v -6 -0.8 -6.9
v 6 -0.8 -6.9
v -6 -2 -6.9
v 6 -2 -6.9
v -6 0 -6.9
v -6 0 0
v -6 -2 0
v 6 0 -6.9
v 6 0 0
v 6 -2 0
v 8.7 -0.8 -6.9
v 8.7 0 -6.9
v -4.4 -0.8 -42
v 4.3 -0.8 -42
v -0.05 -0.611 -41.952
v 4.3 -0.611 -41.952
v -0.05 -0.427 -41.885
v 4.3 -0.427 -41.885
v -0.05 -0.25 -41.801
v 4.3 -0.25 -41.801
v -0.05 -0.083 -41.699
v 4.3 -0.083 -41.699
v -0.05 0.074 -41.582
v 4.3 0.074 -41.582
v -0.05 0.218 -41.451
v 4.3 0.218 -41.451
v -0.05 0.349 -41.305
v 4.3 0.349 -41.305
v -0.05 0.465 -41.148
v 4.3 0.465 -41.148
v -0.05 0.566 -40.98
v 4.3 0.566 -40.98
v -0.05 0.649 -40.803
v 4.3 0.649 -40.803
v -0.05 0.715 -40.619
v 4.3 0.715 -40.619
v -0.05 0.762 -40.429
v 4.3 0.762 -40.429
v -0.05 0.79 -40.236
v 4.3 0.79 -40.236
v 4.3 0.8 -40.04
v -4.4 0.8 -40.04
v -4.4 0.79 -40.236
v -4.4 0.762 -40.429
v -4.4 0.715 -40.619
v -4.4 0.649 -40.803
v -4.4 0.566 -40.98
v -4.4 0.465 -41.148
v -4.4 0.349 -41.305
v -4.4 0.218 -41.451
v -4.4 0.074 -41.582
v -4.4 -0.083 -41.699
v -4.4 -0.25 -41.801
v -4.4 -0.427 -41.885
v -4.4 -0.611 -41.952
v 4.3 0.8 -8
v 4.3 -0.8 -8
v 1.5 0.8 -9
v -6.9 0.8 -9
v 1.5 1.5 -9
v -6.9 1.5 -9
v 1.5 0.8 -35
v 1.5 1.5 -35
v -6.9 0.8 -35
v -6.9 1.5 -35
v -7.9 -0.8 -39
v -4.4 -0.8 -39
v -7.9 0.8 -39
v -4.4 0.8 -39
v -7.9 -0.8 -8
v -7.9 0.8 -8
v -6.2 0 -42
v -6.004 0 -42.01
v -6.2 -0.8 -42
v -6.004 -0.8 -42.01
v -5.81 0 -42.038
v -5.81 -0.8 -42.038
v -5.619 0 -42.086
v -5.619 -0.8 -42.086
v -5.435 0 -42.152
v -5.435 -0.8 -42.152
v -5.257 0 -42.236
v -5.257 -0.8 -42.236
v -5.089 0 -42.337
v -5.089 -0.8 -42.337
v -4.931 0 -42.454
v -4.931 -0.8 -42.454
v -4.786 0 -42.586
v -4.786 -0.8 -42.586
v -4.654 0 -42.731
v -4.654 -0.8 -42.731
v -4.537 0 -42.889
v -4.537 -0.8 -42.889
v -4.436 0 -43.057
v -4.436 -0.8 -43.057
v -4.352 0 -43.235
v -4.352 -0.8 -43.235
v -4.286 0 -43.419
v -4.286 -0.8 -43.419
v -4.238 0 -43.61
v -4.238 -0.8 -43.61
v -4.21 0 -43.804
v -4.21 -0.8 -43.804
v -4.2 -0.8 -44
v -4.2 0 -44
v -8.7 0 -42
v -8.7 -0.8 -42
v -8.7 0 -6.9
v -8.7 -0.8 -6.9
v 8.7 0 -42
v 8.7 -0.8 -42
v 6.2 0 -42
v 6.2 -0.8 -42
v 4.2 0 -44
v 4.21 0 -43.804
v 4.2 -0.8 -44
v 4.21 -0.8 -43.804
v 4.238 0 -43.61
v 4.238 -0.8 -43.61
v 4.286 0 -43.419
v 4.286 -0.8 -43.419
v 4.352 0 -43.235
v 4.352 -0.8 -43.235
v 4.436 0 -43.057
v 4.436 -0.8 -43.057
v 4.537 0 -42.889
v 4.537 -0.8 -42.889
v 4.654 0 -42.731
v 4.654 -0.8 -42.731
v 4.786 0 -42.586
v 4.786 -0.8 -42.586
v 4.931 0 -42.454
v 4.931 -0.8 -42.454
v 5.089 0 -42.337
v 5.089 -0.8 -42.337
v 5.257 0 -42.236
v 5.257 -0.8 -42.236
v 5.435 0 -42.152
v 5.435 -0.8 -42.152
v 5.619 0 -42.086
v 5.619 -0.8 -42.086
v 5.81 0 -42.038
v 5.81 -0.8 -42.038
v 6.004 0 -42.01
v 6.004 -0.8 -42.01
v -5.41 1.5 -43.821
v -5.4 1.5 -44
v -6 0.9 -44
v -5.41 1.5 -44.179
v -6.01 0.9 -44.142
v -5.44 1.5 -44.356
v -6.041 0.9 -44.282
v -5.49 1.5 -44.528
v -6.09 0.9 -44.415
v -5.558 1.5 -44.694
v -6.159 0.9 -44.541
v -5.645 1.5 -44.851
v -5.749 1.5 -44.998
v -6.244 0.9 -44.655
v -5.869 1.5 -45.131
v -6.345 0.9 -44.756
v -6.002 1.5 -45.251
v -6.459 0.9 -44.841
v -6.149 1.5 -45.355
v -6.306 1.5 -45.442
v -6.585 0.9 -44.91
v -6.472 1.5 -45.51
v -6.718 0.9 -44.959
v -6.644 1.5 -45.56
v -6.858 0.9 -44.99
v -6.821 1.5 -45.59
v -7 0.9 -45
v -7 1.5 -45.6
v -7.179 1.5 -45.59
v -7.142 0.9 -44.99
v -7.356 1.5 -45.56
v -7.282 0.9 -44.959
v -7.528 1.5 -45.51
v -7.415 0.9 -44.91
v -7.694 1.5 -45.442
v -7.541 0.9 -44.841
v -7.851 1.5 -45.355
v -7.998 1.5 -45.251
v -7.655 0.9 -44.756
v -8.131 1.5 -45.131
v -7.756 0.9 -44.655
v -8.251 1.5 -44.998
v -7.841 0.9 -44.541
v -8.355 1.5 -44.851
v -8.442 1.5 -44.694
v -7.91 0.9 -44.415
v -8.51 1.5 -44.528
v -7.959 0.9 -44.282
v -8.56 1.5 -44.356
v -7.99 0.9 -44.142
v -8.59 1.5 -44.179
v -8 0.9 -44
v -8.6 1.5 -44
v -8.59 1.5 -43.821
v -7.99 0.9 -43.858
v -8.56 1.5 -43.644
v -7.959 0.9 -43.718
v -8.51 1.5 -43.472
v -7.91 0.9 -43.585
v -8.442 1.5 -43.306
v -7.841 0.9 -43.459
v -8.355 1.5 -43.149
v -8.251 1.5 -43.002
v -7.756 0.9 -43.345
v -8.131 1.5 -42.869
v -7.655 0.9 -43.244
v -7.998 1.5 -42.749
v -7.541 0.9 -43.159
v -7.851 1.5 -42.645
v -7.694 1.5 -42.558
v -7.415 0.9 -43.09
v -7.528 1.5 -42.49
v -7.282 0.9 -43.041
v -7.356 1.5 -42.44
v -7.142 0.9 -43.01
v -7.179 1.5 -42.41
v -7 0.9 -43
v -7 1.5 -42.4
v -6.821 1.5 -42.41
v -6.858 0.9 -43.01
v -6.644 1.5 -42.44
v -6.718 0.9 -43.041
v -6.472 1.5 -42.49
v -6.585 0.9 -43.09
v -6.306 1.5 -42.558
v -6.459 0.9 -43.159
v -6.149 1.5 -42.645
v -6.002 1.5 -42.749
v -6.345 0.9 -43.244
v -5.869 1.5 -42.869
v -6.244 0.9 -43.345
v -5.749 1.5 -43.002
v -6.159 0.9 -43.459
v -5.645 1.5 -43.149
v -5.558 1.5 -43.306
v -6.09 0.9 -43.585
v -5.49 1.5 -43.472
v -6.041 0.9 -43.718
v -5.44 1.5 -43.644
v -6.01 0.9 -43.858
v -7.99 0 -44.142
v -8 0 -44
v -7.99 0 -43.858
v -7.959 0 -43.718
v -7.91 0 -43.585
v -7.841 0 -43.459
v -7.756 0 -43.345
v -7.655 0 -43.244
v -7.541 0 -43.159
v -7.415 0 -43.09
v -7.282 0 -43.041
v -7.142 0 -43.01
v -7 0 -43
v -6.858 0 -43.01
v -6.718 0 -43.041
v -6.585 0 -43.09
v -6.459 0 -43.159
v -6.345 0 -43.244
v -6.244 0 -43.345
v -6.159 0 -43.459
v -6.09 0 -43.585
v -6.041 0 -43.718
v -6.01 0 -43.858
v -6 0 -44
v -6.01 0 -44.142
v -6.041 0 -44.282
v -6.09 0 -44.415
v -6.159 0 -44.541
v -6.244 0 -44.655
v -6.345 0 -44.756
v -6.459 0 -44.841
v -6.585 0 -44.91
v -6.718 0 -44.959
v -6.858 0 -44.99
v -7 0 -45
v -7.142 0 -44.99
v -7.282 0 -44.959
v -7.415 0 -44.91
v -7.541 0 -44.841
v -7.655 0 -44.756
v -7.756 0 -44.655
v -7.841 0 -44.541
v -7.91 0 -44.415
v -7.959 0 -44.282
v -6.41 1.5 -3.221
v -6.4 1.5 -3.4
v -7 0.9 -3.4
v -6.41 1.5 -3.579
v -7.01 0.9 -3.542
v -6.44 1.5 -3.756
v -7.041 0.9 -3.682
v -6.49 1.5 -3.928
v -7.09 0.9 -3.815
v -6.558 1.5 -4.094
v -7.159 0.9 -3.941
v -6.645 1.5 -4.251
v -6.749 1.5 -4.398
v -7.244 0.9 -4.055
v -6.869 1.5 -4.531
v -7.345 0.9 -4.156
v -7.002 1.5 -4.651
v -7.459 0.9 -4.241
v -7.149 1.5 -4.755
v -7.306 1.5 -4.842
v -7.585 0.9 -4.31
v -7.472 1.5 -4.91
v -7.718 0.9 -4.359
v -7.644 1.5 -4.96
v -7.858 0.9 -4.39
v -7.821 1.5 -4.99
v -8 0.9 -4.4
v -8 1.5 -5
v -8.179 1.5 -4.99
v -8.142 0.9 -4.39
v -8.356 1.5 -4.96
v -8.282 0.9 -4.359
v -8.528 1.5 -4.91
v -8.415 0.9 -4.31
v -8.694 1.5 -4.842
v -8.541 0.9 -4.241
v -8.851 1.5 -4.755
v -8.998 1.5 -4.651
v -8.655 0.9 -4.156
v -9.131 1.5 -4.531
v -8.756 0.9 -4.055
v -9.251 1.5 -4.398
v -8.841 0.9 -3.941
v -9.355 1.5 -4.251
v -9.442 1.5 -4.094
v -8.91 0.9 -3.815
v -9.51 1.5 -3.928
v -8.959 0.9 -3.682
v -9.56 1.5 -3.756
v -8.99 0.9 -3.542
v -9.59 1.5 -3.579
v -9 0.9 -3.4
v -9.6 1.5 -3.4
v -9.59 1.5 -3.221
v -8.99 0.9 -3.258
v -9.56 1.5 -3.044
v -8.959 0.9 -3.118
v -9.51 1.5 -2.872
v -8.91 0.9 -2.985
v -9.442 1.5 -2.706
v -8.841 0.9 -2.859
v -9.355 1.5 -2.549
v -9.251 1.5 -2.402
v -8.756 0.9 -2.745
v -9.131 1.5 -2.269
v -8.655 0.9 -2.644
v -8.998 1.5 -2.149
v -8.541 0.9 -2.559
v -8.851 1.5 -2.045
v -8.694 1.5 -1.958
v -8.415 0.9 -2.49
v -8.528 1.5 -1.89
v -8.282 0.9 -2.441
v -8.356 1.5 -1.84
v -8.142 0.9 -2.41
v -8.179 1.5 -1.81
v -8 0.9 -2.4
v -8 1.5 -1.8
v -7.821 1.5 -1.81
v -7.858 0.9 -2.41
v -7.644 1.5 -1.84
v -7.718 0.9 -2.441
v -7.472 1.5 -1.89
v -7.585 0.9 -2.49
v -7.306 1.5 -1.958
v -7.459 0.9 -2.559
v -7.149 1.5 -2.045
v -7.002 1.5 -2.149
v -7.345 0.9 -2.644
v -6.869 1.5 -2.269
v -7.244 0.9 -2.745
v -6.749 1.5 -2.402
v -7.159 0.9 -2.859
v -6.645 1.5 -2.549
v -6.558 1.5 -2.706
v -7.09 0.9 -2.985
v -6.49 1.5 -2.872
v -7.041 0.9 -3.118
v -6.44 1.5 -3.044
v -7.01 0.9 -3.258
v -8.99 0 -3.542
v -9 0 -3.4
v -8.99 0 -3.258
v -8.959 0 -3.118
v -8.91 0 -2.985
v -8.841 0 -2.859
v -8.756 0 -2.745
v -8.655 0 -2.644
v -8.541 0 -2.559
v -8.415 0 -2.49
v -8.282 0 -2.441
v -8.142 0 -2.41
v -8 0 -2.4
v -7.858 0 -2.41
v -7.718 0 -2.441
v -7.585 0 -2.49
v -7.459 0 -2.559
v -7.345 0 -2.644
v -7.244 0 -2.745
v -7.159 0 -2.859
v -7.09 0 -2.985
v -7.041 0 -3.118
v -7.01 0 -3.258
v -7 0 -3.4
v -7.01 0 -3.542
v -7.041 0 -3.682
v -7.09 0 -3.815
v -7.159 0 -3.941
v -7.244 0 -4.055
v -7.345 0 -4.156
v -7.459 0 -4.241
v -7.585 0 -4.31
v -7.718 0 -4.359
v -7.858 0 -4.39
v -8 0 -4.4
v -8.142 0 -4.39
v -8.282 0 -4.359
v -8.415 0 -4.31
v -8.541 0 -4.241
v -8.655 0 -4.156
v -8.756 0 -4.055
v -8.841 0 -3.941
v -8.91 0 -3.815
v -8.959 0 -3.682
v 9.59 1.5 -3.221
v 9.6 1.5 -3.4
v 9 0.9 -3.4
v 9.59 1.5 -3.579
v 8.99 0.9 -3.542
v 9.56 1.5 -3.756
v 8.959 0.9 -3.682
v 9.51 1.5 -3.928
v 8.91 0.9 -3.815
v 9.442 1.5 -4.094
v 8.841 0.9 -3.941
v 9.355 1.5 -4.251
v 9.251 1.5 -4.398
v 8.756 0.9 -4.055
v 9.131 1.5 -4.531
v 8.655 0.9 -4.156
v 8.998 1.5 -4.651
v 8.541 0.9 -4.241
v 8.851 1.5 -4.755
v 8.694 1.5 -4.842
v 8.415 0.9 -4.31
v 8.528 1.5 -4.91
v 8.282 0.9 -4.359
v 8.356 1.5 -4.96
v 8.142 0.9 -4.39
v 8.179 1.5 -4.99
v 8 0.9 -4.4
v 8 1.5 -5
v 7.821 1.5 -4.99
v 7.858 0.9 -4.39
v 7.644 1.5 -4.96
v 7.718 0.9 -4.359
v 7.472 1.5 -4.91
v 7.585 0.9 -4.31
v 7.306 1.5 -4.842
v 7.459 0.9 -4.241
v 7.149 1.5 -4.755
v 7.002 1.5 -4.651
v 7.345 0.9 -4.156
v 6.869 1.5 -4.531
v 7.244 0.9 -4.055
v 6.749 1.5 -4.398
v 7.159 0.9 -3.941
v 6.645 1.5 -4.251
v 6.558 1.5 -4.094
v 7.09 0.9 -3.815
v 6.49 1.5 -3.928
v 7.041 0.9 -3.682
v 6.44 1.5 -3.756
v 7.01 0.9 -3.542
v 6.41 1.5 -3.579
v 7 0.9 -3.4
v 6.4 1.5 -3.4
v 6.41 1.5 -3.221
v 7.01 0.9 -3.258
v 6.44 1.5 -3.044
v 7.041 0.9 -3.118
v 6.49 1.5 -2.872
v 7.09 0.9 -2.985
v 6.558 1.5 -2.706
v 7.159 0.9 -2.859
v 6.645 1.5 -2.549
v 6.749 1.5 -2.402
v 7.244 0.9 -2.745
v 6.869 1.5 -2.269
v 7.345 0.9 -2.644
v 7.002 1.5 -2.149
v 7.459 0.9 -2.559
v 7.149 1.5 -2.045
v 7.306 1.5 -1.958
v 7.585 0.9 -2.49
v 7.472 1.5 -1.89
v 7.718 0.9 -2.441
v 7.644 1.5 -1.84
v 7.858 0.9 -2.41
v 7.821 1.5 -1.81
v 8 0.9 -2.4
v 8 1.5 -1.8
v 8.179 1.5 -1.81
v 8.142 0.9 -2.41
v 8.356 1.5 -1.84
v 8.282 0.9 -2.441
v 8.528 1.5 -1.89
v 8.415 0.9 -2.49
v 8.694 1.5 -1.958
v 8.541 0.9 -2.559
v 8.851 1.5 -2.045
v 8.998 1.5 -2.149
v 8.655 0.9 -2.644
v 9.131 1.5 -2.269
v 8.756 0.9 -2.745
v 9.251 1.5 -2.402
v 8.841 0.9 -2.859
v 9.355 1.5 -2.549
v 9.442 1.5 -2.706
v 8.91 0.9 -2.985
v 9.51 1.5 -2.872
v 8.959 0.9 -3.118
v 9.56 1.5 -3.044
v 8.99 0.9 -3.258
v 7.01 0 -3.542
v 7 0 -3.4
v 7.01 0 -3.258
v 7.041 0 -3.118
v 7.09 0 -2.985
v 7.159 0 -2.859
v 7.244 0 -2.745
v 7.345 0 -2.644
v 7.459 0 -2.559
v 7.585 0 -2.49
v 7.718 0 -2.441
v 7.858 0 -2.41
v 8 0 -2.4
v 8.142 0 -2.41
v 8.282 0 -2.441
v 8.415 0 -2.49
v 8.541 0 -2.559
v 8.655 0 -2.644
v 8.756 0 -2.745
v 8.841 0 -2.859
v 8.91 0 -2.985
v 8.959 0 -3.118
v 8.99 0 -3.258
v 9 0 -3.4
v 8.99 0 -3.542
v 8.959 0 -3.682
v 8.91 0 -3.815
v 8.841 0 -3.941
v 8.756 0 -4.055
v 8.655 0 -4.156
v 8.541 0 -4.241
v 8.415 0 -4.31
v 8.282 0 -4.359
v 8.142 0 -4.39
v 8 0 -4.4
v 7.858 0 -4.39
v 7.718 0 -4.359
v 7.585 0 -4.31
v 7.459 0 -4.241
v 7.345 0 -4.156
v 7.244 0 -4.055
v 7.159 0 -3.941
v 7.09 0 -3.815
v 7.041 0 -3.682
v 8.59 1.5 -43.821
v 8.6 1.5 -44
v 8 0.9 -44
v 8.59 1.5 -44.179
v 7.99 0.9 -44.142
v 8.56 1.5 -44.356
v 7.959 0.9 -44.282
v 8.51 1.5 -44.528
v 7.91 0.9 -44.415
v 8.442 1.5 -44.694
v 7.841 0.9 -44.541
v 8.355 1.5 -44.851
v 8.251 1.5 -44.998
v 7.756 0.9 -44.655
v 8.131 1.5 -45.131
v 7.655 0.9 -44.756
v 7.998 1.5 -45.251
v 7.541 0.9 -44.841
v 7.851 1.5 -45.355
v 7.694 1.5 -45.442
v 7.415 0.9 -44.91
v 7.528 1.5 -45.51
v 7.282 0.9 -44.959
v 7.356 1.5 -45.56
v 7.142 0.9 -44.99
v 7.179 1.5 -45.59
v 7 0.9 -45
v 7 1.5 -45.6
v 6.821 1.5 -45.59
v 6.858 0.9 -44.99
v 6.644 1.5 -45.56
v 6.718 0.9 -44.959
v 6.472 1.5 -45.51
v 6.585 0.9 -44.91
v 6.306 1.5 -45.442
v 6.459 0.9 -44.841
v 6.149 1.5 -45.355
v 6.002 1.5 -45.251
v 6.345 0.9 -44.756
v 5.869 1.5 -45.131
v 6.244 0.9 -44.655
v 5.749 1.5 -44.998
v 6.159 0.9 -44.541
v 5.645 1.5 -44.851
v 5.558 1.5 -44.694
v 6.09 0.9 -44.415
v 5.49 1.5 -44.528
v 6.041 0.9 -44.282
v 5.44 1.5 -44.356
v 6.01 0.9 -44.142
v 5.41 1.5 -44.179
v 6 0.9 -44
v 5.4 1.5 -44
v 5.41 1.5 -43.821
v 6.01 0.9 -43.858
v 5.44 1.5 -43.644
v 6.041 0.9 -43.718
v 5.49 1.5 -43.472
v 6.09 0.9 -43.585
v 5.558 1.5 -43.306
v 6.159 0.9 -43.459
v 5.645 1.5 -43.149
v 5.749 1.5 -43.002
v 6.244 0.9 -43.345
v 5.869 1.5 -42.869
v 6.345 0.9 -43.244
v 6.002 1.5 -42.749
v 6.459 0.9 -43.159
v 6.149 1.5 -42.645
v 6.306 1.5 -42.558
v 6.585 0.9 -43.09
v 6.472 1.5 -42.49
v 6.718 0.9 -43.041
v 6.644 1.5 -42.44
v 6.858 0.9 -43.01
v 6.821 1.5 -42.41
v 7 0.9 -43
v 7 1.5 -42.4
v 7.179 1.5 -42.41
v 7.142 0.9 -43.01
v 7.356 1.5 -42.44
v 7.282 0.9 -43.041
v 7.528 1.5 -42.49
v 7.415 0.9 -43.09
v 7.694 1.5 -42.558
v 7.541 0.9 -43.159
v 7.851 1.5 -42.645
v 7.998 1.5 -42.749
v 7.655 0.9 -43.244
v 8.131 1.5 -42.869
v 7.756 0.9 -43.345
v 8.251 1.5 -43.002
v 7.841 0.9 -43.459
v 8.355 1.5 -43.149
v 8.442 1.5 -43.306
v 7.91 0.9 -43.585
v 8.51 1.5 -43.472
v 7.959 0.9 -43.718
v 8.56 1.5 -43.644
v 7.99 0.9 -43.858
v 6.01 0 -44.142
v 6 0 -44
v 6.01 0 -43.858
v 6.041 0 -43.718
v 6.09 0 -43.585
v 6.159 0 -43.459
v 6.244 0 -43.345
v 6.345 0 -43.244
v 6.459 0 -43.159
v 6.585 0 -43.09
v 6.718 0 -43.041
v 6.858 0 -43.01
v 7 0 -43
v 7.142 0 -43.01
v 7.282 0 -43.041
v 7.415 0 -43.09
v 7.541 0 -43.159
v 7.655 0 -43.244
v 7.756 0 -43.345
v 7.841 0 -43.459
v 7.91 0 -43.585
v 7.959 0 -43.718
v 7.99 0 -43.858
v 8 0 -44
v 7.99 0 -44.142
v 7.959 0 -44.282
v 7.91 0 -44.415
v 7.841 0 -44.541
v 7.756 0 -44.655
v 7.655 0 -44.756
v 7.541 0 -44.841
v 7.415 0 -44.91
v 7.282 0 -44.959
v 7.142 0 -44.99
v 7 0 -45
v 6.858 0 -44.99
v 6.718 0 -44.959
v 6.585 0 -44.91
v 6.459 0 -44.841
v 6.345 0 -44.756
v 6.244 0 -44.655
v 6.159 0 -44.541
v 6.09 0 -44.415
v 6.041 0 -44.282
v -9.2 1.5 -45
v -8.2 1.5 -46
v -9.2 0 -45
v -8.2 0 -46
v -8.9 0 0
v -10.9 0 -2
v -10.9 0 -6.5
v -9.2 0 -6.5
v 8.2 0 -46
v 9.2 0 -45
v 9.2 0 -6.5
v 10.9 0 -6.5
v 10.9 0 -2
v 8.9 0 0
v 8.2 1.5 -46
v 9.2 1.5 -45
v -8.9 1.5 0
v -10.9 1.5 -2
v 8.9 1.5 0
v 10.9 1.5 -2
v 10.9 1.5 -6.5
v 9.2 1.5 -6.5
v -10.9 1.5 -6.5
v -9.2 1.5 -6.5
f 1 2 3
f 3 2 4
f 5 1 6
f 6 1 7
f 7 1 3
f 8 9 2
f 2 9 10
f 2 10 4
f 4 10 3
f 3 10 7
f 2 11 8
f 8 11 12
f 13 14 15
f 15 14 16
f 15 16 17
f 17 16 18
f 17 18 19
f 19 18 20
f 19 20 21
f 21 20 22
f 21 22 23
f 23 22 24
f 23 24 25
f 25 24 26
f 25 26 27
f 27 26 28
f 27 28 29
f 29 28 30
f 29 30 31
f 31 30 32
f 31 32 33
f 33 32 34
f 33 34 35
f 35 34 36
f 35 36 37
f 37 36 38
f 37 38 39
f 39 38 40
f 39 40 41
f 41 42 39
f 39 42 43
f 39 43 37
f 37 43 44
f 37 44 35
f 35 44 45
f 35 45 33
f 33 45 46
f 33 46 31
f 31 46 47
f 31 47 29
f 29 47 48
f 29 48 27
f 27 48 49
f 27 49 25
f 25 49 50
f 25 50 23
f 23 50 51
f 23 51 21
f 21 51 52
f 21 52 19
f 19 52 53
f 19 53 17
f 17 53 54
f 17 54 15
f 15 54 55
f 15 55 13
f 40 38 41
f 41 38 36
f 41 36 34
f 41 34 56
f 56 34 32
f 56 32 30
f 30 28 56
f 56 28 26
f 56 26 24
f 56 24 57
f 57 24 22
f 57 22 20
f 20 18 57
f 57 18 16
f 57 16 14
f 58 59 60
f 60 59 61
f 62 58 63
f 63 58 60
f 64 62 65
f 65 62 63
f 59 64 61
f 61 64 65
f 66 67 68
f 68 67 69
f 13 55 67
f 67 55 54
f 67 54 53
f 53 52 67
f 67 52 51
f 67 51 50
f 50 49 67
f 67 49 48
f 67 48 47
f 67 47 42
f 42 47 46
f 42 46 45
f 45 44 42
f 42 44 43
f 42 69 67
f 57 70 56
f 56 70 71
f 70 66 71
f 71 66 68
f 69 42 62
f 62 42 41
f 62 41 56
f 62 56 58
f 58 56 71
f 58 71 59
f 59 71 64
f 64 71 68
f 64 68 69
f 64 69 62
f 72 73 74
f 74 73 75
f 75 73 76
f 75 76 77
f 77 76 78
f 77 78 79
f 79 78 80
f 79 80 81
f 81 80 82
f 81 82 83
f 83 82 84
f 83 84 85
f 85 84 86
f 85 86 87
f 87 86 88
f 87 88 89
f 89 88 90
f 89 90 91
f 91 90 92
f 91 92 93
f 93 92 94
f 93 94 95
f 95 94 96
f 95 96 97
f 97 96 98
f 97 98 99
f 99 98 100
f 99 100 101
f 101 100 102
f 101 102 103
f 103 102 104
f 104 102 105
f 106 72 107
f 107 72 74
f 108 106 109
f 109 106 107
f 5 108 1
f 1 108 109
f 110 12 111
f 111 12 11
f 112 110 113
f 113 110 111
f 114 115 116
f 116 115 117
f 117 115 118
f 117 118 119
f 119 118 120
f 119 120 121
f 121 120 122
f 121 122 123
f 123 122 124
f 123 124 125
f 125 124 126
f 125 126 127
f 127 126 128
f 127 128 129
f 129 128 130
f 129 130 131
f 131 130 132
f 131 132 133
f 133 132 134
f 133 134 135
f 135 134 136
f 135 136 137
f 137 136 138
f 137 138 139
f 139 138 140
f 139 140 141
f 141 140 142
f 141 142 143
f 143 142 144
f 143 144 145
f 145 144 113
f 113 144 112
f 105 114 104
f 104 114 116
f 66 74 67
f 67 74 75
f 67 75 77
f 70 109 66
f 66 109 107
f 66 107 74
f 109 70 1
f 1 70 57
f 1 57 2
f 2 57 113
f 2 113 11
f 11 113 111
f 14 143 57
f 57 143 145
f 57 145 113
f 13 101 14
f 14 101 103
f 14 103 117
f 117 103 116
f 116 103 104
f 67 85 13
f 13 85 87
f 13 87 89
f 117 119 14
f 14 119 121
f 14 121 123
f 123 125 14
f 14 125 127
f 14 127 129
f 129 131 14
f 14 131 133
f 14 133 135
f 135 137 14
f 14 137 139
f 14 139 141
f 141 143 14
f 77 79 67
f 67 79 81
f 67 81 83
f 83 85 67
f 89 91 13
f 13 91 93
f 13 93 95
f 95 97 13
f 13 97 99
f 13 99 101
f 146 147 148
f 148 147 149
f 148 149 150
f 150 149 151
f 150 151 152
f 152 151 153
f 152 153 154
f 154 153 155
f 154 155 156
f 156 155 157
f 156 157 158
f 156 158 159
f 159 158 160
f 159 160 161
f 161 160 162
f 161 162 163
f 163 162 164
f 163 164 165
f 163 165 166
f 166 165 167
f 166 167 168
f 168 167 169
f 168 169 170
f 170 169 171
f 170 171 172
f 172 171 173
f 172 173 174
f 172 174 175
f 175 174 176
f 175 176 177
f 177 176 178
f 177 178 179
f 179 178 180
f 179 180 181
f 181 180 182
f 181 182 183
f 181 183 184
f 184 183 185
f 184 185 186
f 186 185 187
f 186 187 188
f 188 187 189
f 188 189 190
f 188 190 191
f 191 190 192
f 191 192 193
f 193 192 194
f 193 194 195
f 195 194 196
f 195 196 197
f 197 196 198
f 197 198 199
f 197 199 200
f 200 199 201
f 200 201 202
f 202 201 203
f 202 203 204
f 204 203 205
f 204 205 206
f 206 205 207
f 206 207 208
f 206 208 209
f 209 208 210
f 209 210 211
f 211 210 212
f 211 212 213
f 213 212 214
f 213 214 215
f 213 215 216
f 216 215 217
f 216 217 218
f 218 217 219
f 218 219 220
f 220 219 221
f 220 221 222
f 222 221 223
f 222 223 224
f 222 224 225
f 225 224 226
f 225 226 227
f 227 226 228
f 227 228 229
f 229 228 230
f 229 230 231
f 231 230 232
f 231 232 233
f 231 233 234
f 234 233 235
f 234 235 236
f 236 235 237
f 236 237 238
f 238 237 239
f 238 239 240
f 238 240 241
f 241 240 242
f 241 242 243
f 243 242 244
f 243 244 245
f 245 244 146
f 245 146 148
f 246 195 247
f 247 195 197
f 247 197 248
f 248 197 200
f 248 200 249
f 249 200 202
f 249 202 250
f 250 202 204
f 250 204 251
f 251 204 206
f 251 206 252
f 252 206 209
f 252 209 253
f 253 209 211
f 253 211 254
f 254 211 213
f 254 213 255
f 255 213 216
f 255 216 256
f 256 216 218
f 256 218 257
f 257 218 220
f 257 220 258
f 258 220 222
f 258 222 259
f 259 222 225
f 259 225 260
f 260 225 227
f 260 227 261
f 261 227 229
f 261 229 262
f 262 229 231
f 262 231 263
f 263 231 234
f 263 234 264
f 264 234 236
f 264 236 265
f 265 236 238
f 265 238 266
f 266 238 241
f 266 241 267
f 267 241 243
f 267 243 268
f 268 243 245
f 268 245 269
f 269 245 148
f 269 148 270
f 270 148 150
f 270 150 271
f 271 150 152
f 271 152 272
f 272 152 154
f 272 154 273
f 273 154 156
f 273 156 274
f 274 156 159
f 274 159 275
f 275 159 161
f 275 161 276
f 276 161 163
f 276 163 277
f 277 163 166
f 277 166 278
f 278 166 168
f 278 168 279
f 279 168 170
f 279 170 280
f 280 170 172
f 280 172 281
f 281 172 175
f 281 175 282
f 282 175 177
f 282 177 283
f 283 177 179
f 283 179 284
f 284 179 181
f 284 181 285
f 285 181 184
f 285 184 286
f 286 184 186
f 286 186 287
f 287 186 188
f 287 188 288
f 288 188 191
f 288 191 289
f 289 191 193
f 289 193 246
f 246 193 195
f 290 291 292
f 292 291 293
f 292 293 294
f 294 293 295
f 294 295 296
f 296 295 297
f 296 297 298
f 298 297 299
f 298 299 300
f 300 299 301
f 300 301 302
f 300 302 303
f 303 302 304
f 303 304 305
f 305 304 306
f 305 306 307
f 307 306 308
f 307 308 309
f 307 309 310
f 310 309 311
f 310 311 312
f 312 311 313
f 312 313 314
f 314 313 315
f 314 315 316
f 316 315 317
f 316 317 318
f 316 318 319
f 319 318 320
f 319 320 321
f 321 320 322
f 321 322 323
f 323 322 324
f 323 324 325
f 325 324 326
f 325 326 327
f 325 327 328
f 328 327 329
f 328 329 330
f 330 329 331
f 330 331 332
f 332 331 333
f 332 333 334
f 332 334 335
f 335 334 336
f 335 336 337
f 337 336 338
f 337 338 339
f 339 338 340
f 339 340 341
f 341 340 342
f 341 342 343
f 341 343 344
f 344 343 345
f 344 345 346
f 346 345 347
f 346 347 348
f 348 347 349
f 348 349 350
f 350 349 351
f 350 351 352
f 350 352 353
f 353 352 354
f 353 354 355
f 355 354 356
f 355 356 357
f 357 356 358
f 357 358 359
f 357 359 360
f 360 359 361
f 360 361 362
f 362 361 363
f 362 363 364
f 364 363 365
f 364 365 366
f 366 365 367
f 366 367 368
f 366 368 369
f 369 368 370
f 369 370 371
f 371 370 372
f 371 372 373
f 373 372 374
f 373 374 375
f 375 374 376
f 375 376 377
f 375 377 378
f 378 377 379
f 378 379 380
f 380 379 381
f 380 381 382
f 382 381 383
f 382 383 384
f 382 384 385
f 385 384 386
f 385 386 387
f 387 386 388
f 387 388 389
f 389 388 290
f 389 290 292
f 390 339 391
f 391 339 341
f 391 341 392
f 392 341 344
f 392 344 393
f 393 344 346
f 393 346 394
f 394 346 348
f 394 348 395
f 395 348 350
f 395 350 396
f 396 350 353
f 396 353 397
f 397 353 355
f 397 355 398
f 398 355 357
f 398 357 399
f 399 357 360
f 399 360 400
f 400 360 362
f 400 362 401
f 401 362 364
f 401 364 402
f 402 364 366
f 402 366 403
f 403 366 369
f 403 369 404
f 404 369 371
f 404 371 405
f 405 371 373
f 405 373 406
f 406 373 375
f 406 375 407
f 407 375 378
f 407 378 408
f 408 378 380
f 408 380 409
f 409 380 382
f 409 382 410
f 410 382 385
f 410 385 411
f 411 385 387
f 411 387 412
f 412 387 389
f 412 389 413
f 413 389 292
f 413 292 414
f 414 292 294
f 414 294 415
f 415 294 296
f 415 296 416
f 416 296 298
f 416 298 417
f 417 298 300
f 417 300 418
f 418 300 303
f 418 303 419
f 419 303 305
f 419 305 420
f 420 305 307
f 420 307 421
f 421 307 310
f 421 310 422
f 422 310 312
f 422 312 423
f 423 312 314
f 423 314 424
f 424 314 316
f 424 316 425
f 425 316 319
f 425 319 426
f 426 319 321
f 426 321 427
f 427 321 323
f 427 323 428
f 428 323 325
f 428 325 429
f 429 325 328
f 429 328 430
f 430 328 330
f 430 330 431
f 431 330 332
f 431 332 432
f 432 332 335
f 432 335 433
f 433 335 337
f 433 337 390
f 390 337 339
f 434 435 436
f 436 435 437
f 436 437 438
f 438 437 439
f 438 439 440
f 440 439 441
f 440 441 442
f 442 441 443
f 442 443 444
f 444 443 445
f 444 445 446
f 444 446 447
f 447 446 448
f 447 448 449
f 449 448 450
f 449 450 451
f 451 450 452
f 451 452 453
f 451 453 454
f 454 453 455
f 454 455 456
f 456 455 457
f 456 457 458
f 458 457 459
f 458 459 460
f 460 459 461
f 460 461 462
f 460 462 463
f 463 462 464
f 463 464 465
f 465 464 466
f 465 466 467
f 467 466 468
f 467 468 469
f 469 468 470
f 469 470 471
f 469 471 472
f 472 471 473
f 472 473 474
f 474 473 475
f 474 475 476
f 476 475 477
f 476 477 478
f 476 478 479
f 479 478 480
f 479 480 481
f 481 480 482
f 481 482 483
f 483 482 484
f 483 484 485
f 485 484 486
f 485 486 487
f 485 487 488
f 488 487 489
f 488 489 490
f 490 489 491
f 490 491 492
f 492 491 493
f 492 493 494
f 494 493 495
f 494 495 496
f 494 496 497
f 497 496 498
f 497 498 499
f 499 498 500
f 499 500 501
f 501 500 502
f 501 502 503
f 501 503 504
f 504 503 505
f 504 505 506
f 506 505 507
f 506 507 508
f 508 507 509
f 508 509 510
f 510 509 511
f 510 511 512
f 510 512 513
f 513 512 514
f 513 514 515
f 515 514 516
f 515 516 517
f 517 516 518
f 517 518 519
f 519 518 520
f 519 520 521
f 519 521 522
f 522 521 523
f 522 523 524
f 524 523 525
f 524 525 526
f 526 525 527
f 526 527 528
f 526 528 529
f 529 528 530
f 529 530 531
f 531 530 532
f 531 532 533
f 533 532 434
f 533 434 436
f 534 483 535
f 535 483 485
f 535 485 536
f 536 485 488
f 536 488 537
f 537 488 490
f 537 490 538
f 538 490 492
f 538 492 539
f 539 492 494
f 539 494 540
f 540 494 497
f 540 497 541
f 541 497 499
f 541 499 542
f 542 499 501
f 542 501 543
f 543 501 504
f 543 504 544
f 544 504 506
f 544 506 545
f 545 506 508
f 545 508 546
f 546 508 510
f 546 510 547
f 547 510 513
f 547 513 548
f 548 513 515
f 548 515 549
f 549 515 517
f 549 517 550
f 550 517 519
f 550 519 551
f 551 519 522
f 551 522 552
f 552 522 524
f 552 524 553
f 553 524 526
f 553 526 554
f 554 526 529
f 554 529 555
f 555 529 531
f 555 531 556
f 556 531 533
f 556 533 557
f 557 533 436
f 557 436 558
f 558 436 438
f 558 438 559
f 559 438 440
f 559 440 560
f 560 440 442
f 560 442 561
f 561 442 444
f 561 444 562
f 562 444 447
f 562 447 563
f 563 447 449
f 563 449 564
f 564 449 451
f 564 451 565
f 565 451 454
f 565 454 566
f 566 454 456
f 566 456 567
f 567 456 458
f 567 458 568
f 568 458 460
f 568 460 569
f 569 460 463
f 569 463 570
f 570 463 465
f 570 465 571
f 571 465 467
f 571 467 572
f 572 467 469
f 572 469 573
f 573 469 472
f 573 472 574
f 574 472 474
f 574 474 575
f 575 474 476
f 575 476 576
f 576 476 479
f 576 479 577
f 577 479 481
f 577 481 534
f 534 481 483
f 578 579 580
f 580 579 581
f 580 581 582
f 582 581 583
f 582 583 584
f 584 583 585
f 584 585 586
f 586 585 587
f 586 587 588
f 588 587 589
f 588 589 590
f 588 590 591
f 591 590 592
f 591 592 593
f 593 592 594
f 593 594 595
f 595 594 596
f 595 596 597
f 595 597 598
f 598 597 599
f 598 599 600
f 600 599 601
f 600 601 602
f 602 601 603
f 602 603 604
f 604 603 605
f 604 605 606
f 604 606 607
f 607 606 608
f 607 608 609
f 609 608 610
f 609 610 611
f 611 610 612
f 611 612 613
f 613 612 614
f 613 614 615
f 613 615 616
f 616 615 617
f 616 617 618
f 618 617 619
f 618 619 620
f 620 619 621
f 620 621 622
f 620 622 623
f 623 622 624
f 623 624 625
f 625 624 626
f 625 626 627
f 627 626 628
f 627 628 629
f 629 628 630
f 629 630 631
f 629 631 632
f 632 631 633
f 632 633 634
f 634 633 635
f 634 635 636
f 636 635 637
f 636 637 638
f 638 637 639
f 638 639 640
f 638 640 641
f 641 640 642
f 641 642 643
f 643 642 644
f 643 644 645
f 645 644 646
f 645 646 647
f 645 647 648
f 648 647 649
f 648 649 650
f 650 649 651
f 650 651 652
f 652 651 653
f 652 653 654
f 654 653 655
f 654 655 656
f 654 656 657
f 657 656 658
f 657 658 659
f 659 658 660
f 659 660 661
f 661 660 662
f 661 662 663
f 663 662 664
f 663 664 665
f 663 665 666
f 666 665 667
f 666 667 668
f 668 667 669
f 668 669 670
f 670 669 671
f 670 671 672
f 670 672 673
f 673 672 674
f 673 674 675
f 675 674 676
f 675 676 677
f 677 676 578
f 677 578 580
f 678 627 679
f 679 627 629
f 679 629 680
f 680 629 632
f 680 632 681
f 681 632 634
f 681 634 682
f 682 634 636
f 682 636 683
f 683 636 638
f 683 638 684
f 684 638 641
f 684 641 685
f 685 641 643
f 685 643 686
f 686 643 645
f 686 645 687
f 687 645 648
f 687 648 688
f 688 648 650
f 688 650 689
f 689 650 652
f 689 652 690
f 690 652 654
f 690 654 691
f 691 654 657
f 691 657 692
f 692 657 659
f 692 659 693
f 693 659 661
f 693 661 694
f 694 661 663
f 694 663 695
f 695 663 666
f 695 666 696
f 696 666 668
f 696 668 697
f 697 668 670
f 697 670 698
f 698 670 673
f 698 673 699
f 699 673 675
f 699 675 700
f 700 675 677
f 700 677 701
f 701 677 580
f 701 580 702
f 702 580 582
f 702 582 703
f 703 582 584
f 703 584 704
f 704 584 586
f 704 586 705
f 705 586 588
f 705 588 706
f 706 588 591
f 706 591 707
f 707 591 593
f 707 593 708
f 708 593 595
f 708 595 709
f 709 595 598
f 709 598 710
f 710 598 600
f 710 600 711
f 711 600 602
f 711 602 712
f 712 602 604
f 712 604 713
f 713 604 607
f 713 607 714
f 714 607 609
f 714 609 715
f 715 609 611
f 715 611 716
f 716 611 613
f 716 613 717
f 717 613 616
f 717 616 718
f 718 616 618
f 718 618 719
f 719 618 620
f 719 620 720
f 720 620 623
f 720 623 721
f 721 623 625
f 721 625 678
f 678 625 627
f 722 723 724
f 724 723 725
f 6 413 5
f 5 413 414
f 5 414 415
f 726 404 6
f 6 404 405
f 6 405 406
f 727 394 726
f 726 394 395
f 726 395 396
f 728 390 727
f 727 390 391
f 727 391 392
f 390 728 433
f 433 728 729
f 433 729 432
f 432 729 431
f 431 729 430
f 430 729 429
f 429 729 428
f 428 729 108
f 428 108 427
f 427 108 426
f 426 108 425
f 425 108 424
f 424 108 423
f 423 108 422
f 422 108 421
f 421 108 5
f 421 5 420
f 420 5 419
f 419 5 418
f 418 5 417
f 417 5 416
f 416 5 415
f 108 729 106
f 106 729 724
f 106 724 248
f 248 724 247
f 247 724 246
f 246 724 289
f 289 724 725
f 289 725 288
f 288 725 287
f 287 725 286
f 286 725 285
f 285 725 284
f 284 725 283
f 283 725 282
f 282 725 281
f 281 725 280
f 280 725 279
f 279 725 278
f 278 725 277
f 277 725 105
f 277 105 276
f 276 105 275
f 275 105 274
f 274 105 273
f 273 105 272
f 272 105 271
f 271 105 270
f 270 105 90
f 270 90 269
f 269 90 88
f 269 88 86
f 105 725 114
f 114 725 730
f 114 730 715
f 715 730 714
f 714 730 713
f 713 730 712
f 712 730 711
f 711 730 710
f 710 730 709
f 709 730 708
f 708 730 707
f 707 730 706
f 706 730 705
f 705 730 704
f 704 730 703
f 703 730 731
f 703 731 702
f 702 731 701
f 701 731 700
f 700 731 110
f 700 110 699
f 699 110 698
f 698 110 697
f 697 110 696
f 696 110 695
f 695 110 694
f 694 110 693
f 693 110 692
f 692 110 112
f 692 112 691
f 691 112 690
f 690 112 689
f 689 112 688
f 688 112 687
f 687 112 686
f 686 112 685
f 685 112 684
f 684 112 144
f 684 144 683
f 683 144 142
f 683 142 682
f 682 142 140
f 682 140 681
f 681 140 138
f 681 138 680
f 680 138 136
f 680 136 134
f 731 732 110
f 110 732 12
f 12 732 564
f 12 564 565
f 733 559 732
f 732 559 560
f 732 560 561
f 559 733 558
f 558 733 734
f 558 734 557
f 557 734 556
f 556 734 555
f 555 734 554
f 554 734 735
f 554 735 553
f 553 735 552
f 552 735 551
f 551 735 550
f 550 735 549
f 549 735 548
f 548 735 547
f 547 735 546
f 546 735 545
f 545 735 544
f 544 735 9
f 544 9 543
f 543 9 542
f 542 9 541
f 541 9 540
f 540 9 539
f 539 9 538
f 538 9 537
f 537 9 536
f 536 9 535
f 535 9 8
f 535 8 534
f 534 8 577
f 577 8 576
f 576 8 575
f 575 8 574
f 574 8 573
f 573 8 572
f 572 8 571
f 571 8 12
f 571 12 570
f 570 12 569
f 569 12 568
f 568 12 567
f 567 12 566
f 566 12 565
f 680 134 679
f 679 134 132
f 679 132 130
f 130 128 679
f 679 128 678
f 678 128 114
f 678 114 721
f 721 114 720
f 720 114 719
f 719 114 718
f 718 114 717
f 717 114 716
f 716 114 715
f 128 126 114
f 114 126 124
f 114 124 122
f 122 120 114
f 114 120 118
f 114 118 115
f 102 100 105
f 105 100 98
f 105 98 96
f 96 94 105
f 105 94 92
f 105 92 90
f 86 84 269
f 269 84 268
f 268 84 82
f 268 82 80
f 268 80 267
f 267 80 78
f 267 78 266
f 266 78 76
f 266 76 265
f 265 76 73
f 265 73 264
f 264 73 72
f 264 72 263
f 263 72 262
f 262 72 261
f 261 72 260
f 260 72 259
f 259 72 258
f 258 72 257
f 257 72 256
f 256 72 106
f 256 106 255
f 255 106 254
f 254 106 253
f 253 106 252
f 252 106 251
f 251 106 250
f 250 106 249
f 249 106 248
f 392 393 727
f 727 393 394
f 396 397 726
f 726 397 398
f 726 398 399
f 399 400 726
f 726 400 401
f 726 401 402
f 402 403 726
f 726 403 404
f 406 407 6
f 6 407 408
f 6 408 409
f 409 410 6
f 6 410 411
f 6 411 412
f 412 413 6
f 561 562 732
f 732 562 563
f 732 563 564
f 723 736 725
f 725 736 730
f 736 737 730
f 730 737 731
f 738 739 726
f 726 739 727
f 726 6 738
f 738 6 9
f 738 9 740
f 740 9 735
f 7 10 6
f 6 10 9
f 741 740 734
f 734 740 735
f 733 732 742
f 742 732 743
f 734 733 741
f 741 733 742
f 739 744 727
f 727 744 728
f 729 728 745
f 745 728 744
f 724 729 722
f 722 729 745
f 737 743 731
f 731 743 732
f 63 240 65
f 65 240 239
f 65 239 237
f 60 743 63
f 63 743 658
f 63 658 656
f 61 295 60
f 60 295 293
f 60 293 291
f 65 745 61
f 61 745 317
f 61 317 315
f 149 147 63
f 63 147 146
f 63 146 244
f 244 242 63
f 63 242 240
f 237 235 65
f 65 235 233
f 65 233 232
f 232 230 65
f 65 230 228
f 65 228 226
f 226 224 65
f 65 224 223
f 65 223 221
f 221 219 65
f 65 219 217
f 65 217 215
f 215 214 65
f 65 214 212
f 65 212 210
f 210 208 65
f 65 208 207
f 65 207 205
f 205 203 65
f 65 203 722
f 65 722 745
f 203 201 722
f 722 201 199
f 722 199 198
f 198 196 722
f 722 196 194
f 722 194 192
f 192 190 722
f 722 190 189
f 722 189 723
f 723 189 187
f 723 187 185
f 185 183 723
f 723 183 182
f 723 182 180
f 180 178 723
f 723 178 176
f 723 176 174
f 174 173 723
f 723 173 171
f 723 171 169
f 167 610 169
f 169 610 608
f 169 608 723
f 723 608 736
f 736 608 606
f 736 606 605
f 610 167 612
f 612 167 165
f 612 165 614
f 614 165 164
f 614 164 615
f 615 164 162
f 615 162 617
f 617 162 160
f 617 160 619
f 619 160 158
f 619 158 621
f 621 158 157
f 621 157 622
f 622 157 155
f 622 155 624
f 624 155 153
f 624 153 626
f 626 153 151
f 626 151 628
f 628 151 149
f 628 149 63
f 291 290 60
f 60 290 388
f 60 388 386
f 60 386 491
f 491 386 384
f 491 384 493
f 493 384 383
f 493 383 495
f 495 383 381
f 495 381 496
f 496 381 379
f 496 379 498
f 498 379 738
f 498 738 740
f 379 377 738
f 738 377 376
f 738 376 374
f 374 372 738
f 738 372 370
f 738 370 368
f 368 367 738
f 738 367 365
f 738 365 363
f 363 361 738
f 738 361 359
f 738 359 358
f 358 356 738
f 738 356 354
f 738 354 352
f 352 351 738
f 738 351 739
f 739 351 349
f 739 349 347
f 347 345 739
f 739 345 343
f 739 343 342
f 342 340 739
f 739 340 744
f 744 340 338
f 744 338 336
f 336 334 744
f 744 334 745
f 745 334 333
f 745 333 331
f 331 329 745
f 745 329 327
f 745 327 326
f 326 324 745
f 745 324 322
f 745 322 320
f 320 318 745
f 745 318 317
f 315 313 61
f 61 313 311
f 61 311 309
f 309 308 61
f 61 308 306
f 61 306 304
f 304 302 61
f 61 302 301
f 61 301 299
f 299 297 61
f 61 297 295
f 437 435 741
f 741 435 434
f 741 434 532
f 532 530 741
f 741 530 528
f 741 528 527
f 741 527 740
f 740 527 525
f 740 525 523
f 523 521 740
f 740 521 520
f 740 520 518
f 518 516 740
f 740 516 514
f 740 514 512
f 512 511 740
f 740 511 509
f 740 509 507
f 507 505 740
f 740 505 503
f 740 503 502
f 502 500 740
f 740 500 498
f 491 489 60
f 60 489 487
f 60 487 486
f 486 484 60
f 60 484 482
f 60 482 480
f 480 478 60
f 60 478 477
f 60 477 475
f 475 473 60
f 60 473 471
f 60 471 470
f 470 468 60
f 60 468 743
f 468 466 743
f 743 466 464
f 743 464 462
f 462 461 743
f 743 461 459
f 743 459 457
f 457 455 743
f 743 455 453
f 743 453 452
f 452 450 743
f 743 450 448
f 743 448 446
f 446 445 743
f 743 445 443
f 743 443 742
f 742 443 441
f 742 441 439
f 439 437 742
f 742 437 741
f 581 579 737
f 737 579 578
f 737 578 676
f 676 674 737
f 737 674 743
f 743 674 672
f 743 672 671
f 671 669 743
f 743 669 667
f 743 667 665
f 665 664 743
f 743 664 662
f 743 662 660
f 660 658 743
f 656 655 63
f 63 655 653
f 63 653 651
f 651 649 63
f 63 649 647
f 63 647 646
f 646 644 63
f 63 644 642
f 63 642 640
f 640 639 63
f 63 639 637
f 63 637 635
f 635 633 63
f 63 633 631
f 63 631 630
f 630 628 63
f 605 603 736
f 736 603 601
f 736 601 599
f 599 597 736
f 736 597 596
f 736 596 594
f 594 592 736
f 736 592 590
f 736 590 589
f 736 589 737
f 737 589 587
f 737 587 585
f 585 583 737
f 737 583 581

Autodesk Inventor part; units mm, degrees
ref_plane "YZ Plane" through (0, 0, 0) normal (1, 0, 0) x (0, 1, 0)
ref_plane "XZ Plane" through (0, 0, 0) normal (0, 1, 0) x (-1, 0, 0)
ref_plane "XY Plane" through (0, 0, 0) normal (0, 0, 1) x (1, 0, 0)
sketch "Эскиз1" plane through (0, 0, 0) normal (0, 1, 0) x (-1, 0, 0)
  line L0 (0, 0) -> (0, -46)
  line L1 (0, 0) -> (10.9, 0)
  line L2 (10.9, 0) -> (10.9, -6.5)
  line L3 (10.9, -6.5) -> (9.2, -6.5)
  line L4 (9.2, -6.5) -> (9.2, -46)
  line L5 (9.2, -46) -> (0, -46)
  line L6 (0, 0) -> (-10.9, 0)
  line L7 (-10.9, 0) -> (-10.9, -6.5)
  line L8 (-10.9, -6.5) -> (-9.2, -6.5)
  line L9 (-9.2, -6.5) -> (-9.2, -46)
  line L10 (-9.2, -46) -> (0, -46)
  dimension "d1" = 6.5
  dimension "d2" = 46
  dimension "d3" = 18.4
  dimension "d4" = 21.8
extrude "Выдавливание1" add sketch "Эскиз1" along normal blind 1.5
chamfer "Фаска1" distance 2 angle 45 2 edges at (10.9, 0.75, 0) (-10.9, 0.75, 0)
chamfer "Фаска2" distance 1 angle 45 2 edges at (9.2, 0.75, -46) (-9.2, 0.75, -46)
sketch "Эскиз2" plane through (0, 1.5, 0) normal (0, 1, 0) x (1, 0, 0)
  line L0 (0, 0) -> (0, 46)
  line L1 (8.2, 46) -> (-8.2, 46) projected
  line L2 (-8.9, 0) -> (8.9, 0) projected
  point P0 (-8, 3.4)
  point P1 (8, 3.4)
  point P2 (-7, 44)
  point P3 (7, 44)
  dimension "d20" = 3.4
  dimension "d21" = 16
  dimension "d22" = 14
  dimension "d23" = 44
hole "Отверстие1" at (-8, 1.5, -3.4) at (8, 1.5, -3.4) at (-7, 1.5, -44) at (7, 1.5, -44) direction (0, -1, 0) diameter 2 end through all countersink diameter 3.2 countersink angle 90
sketch "Эскиз3" plane through (0, 0, 0) normal (0, -1, 0) x (1, 0, 0)
  line L0 (8.7, -6.9) -> (0, -6.9)
  line L1 (-8.9, 0) -> (8.9, 0) projected
  line L2 (8.7, -6.9) -> (8.7, -42)
  line L3 (10.9, -2) -> (10.9, -6.5) projected
  line L4 (8.7, -42) -> (6.2, -42)
  line L5 (4.2, -44) -> (4.2, -44)
  line L6 (4.2, -44) -> (0, -44)
  line L7 (8.7, -6.9) -> (5.8, -6.9)
  line L8 (0, 0) -> (0, -46)
  line L9 (8.2, -46) -> (-8.2, -46) projected
  arc A0 (6.2, -42) -> (4.2, -44) centre (6.2, -44) ccw
  line L10 (-8.7, -6.9) -> (0, -6.9)
  line L11 (-8.7, -6.9) -> (-8.7, -42)
  line L12 (-8.7, -42) -> (-6.2, -42)
  line L13 (-4.2, -44) -> (-4.2, -44)
  line L14 (-4.2, -44) -> (0, -44)
  line L15 (-8.7, -6.9) -> (-5.8, -6.9)
  arc A1 (-4.2, -44) -> (-6.2, -42) centre (-6.2, -44) ccw
  circle A2 centre (-7, -44) radius 1 projected
  circle A3 centre (-8, -3.4) radius 1 projected
  circle A4 centre (8, -3.4) radius 1 projected
  circle A5 centre (7, -44) radius 1 projected
  line L16 (-8.2, -46) -> (-9.2, -45) projected
  line L17 (8.2, -46) -> (-8.2, -46) projected
  line L18 (9.2, -45) -> (8.2, -46) projected
  line L19 (9.2, -6.5) -> (9.2, -45) projected
  line L20 (10.9, -6.5) -> (9.2, -6.5) projected
  line L21 (10.9, -2) -> (10.9, -6.5) projected
  line L22 (8.9, 0) -> (10.9, -2) projected
  line L23 (-8.9, 0) -> (8.9, 0) projected
  line L24 (-10.9, -2) -> (-8.9, 0) projected
  line L25 (-10.9, -6.5) -> (-10.9, -2) projected
  line L26 (-9.2, -6.5) -> (-10.9, -6.5) projected
  line L27 (-9.2, -45) -> (-9.2, -6.5) projected
  dimension "d24" = 6.9
  dimension "d25" = 2.2
  dimension "d26" = 42
  dimension "d27" = 44
  dimension "d28" = 6.7
  dimension "d30" = 2
extrude "Выдавливание2" add sketch "Эскиз3" along normal blind 0.8 contours L2 L4 A0 L6 L8 L0 | L8 L14 A1 L12 L11 L10
sketch "Эскиз5" plane through (0, -0.8, 0) normal (0, -1, 0) x (1, 0, 0)
  line L0 (-7.9, -42) -> (4.3, -42)
  line L1 (4.3, -42) -> (4.3, -8)
  line L2 (4.3, -8) -> (-7.9, -8)
  line L3 (-7.9, -8) -> (-7.9, -42)
  line L4 (-10.9, -6.5) -> (-10.9, -2) projected
  line L5 (9.2, -6.5) -> (9.2, -45) projected
  line L6 (-8.9, 0) -> (8.9, 0) projected
  line L7 (8.2, -46) -> (-8.2, -46) projected
  line L8 (-4.4, -42) -> (-4.4, -39)
  line L9 (-4.4, -39) -> (-7.9, -39)
  point P0 (0, 0)
  dimension "d33" = 3
  dimension "d35" = 8
  dimension "d36" = 4
  dimension "d40" = 31
  dimension "d41" = 3.5
  dimension "d55" = 12.2
extrude "Выдавливание3" cut sketch "Эскиз5" against normal blind 1.6 contours L8 L9 L3 L2 L1 L0
sketch "Эскиз6" plane through (0, 1.5, 0) normal (0, 1, 0) x (1, 0, 0)
  line L0 (-6.9, 9) -> (1.5, 9)
  line L1 (1.5, 9) -> (1.5, 35)
  line L2 (1.5, 35) -> (-6.9, 35)
  line L3 (-6.9, 35) -> (-6.9, 9)
  line L4 (-8.9, 0) -> (8.9, 0) projected
  line L5 (-9.2, 45) -> (-9.2, 6.5) projected
  line L6 (-10.9, 6.5) -> (-10.9, 2) projected
  line L7 (10.9, 2) -> (10.9, 6.5) projected
  point P0 (0, 0)
  dimension "d43" = 9
  dimension "d45" = 4
  dimension "d46" = 9.4
  dimension "d47" = 26
extrude "Выдавливание4" cut sketch "Эскиз6" against normal through all
fillet "Сопряжение2" radius 2 1 edges at (-0.05, 0.8, -42)
sketch "Эскиз7" plane through (0, 0, 0) normal (0, -1, 0) x (1, 0, 0)
  line L0 (-8.9, 0) -> (8.9, 0) projected
  line L1 (8.7, -6.9) -> (-8.7, -6.9) projected
  line L2 (6, 0) -> (-6, 0)
  line L3 (-6, 0) -> (-6, -6.9)
  line L4 (-6, -6.9) -> (6, -6.9)
  line L5 (6, -6.9) -> (6, 0)
  point P0 (0, 0)
  point P1 (0, 0)
  dimension "d51" = 12
extrude "Выдавливание5" add sketch "Эскиз7" along normal blind 2
properties part number "Case_top_new"
